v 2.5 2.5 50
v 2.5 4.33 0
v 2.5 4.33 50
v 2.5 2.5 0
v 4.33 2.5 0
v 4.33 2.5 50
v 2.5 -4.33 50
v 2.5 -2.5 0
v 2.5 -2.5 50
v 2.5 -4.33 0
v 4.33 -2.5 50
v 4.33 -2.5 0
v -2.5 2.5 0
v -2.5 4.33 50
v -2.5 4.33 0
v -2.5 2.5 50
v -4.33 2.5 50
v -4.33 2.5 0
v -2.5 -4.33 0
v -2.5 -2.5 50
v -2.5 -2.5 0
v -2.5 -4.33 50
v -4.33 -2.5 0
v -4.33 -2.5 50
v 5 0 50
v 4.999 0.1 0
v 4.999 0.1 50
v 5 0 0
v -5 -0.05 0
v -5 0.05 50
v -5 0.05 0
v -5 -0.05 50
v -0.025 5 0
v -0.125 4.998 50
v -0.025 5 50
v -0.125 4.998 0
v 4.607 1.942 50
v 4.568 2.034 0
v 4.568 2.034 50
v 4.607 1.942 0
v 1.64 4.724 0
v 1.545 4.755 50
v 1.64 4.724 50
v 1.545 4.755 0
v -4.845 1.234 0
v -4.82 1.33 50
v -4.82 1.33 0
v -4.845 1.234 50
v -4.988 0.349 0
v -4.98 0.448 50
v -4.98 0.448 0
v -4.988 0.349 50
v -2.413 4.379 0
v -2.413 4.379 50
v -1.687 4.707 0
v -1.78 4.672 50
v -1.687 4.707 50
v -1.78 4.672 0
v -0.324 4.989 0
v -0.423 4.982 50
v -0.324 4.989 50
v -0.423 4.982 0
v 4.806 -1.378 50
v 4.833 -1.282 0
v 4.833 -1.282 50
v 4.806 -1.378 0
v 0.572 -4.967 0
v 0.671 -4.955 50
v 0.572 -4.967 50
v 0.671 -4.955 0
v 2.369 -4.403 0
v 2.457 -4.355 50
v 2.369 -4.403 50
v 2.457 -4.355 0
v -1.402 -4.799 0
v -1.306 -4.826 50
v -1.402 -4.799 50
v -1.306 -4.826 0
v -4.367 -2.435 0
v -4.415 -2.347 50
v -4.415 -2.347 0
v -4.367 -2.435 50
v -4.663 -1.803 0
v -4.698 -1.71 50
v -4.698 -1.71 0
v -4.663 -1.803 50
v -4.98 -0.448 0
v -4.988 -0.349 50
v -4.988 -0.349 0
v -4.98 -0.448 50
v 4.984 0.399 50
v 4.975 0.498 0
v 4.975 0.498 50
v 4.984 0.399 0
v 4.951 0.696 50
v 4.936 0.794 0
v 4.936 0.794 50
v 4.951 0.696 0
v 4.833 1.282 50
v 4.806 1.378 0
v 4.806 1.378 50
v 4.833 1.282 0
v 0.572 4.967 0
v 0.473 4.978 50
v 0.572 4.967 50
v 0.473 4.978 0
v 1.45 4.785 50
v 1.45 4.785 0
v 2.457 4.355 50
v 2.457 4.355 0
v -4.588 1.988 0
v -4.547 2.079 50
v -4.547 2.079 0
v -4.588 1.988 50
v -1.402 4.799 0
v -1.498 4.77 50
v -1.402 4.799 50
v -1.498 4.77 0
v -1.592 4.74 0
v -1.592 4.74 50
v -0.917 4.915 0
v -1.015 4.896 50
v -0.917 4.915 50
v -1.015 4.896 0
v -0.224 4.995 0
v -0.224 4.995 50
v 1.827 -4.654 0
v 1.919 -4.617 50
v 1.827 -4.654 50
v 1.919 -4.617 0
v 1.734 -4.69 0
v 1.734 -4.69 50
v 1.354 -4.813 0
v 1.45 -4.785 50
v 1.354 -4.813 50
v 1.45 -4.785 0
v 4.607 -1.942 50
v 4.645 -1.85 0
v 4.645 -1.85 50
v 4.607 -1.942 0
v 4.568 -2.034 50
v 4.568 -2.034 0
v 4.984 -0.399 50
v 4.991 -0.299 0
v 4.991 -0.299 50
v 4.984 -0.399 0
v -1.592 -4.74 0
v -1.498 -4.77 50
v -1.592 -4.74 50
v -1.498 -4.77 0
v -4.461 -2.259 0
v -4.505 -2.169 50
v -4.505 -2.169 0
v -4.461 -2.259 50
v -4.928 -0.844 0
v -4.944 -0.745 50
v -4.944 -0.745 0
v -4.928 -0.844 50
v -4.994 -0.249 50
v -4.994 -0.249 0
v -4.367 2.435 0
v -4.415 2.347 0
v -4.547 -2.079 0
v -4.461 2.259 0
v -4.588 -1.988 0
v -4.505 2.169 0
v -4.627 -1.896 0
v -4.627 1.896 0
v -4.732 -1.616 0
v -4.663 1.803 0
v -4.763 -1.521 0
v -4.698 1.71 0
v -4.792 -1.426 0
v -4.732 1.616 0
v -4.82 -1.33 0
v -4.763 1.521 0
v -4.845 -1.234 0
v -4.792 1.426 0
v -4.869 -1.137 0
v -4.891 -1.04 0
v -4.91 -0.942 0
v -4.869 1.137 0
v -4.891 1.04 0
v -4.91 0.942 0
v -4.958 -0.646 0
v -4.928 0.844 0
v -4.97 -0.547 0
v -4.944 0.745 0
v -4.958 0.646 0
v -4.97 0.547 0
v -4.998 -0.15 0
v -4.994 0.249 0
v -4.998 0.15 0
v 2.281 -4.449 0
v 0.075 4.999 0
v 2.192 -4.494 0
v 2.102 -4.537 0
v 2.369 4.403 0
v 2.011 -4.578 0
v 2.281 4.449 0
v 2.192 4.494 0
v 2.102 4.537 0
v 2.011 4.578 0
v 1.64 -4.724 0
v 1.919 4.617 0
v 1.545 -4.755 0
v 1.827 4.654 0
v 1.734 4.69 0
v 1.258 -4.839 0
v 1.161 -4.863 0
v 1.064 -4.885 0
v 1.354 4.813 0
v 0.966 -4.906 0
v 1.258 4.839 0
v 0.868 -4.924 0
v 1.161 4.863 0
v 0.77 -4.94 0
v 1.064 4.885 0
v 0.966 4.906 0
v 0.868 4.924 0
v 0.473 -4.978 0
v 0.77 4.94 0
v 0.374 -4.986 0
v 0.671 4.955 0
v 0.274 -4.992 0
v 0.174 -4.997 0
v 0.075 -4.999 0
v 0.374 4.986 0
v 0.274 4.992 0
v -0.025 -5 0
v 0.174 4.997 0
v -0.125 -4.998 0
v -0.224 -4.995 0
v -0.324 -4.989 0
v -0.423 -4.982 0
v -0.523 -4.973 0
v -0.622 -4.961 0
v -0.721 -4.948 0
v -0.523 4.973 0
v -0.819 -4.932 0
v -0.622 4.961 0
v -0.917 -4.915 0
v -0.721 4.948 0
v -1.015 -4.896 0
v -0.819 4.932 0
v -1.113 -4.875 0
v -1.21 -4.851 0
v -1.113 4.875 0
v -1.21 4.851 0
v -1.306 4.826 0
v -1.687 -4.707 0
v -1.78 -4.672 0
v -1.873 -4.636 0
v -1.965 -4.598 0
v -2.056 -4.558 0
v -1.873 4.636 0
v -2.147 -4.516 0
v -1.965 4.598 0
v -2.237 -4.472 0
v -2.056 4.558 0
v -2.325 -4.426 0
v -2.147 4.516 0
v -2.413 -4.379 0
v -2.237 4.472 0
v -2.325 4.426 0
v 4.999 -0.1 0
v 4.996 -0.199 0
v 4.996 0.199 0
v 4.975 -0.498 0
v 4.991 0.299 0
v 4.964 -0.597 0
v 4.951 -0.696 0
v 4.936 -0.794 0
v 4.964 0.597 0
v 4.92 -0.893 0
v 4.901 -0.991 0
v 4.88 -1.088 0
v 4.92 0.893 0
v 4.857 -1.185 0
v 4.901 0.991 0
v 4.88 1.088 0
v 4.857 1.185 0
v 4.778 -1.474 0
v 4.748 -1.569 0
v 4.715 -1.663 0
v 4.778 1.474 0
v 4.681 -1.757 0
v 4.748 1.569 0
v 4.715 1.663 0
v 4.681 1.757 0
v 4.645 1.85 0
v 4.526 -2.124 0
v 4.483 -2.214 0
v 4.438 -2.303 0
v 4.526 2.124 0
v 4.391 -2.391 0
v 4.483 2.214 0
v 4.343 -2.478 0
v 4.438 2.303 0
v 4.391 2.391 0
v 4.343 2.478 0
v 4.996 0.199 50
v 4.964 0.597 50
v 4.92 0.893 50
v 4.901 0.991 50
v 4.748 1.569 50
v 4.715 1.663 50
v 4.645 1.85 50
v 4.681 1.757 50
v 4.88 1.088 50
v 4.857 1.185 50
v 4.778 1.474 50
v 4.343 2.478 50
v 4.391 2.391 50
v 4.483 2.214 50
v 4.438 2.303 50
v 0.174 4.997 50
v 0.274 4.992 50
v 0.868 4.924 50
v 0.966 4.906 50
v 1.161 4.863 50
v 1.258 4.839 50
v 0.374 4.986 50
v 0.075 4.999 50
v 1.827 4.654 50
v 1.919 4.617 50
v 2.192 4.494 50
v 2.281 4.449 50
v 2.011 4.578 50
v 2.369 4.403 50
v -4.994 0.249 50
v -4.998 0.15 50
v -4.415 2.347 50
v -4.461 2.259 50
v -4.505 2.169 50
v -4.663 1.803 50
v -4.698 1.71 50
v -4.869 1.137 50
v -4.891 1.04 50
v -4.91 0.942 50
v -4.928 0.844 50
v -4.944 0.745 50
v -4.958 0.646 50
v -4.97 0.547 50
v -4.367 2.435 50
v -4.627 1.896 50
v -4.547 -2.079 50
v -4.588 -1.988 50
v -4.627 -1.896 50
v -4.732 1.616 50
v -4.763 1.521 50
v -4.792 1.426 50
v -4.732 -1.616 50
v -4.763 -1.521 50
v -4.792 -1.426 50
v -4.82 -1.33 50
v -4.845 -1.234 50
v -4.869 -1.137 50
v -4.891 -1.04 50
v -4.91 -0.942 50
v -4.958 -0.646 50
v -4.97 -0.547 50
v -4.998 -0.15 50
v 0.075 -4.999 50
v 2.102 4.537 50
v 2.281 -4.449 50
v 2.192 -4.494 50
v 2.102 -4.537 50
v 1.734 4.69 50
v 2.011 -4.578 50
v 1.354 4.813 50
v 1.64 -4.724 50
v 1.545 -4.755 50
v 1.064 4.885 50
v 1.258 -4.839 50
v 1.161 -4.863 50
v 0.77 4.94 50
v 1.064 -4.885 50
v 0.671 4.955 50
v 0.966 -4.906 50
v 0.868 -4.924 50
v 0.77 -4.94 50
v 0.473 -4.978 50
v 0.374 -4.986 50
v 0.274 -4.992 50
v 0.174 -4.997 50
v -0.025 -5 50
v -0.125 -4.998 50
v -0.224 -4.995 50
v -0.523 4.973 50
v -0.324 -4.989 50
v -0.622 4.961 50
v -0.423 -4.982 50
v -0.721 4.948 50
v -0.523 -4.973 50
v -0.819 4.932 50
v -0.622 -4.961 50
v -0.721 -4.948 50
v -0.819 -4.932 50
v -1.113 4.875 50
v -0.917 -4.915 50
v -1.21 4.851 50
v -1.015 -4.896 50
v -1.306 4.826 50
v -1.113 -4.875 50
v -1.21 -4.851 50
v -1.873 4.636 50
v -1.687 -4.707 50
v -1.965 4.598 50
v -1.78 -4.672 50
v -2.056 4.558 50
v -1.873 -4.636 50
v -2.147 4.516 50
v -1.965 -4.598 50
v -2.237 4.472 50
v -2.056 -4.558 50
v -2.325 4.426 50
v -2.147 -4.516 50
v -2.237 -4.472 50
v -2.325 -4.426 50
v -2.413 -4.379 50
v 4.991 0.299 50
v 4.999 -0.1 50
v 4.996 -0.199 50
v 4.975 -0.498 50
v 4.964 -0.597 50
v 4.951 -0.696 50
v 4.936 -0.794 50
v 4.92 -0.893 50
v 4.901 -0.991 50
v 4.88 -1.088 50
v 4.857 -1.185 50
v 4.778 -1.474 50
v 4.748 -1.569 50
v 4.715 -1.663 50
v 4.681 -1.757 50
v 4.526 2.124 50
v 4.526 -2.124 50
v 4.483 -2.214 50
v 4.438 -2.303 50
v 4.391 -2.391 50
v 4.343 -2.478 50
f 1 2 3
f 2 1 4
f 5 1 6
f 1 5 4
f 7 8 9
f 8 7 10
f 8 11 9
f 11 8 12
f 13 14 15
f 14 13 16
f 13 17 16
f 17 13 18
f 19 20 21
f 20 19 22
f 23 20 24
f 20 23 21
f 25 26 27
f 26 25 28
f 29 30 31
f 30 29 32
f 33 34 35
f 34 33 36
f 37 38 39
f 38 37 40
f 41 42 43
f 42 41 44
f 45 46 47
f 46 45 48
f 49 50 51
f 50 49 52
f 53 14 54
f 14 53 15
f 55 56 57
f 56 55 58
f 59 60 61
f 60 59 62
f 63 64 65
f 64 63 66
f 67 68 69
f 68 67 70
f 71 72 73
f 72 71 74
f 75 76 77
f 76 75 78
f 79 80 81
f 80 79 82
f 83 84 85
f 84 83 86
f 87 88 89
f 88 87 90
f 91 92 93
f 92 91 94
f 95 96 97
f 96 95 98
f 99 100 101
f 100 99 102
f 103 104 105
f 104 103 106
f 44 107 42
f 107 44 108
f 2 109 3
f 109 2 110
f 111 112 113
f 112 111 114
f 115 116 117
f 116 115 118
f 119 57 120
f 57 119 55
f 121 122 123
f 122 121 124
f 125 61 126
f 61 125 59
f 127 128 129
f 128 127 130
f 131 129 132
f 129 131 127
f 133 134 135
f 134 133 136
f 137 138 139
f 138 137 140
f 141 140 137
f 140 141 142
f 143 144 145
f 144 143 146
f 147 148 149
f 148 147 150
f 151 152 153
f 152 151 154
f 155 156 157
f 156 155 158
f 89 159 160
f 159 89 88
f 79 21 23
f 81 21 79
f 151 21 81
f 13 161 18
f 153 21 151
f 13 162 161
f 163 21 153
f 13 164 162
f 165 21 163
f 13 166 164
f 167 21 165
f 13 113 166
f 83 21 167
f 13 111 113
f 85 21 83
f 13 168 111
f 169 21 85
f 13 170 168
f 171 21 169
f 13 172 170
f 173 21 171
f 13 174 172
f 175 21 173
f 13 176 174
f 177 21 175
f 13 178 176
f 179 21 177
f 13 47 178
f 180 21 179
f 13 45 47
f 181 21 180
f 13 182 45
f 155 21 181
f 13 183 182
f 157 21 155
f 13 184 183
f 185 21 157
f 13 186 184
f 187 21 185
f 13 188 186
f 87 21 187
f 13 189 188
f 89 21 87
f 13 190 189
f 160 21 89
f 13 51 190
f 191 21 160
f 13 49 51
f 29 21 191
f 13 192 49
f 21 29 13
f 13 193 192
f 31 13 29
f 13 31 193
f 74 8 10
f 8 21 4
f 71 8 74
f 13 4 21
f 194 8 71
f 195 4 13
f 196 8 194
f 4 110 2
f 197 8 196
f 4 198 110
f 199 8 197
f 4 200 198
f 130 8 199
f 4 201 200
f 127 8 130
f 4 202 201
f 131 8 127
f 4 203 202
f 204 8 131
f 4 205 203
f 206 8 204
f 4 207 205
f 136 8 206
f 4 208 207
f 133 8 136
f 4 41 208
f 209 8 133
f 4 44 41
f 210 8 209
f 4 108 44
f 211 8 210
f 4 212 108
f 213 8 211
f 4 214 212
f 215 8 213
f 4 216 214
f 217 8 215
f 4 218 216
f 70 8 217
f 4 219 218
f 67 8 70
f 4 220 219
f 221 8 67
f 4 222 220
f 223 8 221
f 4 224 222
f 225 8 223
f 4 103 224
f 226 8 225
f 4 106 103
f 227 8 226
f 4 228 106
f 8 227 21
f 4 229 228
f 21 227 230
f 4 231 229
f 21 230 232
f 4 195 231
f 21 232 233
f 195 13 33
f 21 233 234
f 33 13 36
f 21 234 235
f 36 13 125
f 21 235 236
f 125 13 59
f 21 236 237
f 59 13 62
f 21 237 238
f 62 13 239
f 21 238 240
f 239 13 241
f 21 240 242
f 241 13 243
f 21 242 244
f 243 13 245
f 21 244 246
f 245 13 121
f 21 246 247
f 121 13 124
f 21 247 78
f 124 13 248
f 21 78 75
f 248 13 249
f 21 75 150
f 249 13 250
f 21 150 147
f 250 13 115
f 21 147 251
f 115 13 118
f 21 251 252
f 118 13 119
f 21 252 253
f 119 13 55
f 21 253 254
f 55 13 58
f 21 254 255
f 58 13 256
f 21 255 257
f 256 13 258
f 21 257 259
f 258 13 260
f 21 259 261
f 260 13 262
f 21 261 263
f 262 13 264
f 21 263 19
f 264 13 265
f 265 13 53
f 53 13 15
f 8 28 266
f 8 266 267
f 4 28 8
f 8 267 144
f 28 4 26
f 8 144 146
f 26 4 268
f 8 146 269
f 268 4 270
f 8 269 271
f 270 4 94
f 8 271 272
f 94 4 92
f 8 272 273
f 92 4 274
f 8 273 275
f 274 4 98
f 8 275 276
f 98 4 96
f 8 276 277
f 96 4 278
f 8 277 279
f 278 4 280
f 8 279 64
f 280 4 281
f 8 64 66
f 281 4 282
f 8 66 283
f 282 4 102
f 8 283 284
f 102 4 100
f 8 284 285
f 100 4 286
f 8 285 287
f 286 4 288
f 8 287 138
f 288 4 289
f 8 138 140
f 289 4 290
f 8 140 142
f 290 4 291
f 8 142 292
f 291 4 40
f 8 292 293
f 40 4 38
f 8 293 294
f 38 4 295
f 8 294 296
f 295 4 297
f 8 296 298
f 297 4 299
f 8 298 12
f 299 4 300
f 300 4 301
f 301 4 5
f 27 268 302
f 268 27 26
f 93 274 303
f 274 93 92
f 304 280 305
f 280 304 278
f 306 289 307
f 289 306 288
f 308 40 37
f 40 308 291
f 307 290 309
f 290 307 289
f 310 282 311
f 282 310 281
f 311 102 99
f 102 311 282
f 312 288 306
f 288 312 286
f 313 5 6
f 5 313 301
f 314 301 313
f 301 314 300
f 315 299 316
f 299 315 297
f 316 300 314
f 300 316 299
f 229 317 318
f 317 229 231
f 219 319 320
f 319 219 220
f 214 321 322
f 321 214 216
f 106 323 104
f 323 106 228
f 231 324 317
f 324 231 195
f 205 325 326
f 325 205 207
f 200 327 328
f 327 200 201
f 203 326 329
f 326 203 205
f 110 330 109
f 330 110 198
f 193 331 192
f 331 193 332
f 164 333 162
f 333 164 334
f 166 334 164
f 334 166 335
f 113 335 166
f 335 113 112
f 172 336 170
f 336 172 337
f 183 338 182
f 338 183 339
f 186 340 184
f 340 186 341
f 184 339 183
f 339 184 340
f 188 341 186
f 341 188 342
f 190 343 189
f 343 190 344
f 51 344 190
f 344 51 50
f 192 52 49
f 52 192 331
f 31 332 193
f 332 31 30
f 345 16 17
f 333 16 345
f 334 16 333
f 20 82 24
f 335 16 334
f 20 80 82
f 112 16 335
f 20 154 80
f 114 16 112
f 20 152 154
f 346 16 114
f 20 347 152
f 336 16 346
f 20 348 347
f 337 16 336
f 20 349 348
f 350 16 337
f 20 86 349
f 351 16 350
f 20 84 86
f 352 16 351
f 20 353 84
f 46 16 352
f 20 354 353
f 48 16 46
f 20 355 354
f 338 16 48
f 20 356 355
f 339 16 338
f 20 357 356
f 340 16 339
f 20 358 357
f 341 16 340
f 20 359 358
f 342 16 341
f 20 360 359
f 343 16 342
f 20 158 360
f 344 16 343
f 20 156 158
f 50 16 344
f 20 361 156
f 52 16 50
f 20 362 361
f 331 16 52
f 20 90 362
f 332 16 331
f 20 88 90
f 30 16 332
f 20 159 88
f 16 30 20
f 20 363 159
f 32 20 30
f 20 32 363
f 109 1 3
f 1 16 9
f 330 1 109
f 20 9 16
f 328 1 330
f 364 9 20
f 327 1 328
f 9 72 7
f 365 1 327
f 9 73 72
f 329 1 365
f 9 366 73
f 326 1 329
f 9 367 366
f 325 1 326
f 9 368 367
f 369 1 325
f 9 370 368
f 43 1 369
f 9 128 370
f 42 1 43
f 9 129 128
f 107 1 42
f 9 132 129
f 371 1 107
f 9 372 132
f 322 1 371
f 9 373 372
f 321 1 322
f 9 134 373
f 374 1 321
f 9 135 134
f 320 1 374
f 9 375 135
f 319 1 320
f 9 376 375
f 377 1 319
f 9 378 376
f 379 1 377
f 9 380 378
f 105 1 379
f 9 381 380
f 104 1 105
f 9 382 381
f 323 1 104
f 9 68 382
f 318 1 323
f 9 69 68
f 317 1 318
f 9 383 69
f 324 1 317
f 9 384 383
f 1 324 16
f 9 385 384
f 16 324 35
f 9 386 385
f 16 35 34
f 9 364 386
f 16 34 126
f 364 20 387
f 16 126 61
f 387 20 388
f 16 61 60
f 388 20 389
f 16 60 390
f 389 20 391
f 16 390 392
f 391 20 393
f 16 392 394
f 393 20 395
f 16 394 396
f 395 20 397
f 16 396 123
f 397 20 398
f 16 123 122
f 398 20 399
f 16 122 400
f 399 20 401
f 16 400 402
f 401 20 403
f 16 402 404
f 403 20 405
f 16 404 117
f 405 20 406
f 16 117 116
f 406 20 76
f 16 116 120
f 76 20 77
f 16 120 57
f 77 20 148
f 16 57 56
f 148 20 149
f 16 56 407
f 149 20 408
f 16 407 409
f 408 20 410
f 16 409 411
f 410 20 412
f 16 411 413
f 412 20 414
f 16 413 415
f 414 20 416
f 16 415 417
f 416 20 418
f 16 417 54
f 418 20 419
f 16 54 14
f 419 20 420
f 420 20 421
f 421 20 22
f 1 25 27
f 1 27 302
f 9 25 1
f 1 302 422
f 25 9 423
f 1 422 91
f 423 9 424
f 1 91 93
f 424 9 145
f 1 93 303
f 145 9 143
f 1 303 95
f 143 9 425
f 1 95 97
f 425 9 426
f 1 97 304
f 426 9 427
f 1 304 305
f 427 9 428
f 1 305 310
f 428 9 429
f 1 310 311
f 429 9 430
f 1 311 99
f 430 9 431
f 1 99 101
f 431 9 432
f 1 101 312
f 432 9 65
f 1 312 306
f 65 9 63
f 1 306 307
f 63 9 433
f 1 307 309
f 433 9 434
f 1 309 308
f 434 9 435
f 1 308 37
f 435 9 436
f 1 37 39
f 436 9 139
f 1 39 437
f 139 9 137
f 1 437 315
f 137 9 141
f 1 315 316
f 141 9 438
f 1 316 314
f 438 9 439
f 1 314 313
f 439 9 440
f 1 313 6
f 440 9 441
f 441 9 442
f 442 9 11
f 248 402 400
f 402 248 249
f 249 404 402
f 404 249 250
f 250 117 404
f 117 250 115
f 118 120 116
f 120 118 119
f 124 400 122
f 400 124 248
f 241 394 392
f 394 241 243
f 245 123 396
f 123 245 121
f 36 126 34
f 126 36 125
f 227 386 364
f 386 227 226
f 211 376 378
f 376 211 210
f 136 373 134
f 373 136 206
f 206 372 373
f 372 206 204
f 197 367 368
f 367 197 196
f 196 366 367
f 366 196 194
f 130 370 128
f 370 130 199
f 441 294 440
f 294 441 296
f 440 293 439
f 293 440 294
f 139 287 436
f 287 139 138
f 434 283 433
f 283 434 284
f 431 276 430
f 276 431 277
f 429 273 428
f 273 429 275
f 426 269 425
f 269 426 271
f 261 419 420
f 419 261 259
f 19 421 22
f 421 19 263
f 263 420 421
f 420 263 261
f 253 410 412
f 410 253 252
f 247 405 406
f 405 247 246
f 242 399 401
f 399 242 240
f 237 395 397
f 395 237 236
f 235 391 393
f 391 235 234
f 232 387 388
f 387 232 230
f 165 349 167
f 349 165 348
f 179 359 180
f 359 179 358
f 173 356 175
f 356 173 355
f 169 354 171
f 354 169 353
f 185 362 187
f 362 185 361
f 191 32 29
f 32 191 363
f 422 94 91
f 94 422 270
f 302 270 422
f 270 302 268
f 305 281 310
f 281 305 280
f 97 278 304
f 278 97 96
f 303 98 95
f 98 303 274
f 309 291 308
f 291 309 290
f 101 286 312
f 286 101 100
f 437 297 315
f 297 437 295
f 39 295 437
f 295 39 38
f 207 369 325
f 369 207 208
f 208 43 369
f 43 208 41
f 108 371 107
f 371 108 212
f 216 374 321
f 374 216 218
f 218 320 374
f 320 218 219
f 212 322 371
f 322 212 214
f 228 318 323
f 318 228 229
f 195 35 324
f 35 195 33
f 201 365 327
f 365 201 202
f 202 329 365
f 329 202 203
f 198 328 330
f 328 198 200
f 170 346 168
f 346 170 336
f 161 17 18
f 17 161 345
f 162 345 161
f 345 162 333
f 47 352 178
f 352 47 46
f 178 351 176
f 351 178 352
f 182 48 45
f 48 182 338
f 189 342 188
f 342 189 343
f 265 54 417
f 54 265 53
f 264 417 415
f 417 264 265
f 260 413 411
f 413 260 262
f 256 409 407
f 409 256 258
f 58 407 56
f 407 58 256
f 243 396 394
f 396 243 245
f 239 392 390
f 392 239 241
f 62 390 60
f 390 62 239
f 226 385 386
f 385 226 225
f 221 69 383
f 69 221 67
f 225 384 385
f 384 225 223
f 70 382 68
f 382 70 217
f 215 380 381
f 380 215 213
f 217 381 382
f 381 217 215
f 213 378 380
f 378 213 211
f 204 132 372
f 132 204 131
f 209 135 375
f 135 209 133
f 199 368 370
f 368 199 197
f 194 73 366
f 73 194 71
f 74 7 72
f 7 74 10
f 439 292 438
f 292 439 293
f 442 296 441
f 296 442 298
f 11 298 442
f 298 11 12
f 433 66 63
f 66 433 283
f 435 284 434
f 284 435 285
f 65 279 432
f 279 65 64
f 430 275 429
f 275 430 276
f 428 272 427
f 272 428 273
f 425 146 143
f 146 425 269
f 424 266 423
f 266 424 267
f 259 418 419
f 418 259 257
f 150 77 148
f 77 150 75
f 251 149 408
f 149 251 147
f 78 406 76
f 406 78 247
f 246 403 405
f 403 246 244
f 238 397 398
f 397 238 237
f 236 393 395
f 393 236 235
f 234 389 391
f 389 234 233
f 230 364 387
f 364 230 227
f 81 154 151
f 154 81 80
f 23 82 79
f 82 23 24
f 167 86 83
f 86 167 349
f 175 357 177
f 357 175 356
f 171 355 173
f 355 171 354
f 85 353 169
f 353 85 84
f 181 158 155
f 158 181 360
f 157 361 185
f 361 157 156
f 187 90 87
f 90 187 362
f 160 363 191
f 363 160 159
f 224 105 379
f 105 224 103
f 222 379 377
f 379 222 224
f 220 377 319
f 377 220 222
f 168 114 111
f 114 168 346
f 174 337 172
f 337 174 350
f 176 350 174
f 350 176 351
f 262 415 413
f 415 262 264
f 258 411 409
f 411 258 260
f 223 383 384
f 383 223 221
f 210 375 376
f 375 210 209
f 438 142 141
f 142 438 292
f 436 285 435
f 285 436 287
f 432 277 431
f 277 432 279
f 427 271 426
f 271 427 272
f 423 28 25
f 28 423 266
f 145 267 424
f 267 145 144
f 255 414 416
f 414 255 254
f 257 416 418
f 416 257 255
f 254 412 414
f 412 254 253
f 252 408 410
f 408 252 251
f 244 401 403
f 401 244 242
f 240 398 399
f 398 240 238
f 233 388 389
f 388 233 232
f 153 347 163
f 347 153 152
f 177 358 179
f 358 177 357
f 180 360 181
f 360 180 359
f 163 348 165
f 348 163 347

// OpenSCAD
$fa=0.1;
$fs=0.1;

module axis(l,r) {
  rp=r/2;
  rn=-(r+r/2); 
  difference() {
    cylinder(l,r,r);
    union() {
      translate([rp,rp,-1]) cube([r,r,l+2]);
      translate([rp,rn,-1]) cube([r,r,l+2]);
      translate([rn,rp,-1]) cube([r,r,l+2]);
      translate([rn,rn,-1]) cube([r,r,l+2]);
    }
  }
}

axis(50,5);
